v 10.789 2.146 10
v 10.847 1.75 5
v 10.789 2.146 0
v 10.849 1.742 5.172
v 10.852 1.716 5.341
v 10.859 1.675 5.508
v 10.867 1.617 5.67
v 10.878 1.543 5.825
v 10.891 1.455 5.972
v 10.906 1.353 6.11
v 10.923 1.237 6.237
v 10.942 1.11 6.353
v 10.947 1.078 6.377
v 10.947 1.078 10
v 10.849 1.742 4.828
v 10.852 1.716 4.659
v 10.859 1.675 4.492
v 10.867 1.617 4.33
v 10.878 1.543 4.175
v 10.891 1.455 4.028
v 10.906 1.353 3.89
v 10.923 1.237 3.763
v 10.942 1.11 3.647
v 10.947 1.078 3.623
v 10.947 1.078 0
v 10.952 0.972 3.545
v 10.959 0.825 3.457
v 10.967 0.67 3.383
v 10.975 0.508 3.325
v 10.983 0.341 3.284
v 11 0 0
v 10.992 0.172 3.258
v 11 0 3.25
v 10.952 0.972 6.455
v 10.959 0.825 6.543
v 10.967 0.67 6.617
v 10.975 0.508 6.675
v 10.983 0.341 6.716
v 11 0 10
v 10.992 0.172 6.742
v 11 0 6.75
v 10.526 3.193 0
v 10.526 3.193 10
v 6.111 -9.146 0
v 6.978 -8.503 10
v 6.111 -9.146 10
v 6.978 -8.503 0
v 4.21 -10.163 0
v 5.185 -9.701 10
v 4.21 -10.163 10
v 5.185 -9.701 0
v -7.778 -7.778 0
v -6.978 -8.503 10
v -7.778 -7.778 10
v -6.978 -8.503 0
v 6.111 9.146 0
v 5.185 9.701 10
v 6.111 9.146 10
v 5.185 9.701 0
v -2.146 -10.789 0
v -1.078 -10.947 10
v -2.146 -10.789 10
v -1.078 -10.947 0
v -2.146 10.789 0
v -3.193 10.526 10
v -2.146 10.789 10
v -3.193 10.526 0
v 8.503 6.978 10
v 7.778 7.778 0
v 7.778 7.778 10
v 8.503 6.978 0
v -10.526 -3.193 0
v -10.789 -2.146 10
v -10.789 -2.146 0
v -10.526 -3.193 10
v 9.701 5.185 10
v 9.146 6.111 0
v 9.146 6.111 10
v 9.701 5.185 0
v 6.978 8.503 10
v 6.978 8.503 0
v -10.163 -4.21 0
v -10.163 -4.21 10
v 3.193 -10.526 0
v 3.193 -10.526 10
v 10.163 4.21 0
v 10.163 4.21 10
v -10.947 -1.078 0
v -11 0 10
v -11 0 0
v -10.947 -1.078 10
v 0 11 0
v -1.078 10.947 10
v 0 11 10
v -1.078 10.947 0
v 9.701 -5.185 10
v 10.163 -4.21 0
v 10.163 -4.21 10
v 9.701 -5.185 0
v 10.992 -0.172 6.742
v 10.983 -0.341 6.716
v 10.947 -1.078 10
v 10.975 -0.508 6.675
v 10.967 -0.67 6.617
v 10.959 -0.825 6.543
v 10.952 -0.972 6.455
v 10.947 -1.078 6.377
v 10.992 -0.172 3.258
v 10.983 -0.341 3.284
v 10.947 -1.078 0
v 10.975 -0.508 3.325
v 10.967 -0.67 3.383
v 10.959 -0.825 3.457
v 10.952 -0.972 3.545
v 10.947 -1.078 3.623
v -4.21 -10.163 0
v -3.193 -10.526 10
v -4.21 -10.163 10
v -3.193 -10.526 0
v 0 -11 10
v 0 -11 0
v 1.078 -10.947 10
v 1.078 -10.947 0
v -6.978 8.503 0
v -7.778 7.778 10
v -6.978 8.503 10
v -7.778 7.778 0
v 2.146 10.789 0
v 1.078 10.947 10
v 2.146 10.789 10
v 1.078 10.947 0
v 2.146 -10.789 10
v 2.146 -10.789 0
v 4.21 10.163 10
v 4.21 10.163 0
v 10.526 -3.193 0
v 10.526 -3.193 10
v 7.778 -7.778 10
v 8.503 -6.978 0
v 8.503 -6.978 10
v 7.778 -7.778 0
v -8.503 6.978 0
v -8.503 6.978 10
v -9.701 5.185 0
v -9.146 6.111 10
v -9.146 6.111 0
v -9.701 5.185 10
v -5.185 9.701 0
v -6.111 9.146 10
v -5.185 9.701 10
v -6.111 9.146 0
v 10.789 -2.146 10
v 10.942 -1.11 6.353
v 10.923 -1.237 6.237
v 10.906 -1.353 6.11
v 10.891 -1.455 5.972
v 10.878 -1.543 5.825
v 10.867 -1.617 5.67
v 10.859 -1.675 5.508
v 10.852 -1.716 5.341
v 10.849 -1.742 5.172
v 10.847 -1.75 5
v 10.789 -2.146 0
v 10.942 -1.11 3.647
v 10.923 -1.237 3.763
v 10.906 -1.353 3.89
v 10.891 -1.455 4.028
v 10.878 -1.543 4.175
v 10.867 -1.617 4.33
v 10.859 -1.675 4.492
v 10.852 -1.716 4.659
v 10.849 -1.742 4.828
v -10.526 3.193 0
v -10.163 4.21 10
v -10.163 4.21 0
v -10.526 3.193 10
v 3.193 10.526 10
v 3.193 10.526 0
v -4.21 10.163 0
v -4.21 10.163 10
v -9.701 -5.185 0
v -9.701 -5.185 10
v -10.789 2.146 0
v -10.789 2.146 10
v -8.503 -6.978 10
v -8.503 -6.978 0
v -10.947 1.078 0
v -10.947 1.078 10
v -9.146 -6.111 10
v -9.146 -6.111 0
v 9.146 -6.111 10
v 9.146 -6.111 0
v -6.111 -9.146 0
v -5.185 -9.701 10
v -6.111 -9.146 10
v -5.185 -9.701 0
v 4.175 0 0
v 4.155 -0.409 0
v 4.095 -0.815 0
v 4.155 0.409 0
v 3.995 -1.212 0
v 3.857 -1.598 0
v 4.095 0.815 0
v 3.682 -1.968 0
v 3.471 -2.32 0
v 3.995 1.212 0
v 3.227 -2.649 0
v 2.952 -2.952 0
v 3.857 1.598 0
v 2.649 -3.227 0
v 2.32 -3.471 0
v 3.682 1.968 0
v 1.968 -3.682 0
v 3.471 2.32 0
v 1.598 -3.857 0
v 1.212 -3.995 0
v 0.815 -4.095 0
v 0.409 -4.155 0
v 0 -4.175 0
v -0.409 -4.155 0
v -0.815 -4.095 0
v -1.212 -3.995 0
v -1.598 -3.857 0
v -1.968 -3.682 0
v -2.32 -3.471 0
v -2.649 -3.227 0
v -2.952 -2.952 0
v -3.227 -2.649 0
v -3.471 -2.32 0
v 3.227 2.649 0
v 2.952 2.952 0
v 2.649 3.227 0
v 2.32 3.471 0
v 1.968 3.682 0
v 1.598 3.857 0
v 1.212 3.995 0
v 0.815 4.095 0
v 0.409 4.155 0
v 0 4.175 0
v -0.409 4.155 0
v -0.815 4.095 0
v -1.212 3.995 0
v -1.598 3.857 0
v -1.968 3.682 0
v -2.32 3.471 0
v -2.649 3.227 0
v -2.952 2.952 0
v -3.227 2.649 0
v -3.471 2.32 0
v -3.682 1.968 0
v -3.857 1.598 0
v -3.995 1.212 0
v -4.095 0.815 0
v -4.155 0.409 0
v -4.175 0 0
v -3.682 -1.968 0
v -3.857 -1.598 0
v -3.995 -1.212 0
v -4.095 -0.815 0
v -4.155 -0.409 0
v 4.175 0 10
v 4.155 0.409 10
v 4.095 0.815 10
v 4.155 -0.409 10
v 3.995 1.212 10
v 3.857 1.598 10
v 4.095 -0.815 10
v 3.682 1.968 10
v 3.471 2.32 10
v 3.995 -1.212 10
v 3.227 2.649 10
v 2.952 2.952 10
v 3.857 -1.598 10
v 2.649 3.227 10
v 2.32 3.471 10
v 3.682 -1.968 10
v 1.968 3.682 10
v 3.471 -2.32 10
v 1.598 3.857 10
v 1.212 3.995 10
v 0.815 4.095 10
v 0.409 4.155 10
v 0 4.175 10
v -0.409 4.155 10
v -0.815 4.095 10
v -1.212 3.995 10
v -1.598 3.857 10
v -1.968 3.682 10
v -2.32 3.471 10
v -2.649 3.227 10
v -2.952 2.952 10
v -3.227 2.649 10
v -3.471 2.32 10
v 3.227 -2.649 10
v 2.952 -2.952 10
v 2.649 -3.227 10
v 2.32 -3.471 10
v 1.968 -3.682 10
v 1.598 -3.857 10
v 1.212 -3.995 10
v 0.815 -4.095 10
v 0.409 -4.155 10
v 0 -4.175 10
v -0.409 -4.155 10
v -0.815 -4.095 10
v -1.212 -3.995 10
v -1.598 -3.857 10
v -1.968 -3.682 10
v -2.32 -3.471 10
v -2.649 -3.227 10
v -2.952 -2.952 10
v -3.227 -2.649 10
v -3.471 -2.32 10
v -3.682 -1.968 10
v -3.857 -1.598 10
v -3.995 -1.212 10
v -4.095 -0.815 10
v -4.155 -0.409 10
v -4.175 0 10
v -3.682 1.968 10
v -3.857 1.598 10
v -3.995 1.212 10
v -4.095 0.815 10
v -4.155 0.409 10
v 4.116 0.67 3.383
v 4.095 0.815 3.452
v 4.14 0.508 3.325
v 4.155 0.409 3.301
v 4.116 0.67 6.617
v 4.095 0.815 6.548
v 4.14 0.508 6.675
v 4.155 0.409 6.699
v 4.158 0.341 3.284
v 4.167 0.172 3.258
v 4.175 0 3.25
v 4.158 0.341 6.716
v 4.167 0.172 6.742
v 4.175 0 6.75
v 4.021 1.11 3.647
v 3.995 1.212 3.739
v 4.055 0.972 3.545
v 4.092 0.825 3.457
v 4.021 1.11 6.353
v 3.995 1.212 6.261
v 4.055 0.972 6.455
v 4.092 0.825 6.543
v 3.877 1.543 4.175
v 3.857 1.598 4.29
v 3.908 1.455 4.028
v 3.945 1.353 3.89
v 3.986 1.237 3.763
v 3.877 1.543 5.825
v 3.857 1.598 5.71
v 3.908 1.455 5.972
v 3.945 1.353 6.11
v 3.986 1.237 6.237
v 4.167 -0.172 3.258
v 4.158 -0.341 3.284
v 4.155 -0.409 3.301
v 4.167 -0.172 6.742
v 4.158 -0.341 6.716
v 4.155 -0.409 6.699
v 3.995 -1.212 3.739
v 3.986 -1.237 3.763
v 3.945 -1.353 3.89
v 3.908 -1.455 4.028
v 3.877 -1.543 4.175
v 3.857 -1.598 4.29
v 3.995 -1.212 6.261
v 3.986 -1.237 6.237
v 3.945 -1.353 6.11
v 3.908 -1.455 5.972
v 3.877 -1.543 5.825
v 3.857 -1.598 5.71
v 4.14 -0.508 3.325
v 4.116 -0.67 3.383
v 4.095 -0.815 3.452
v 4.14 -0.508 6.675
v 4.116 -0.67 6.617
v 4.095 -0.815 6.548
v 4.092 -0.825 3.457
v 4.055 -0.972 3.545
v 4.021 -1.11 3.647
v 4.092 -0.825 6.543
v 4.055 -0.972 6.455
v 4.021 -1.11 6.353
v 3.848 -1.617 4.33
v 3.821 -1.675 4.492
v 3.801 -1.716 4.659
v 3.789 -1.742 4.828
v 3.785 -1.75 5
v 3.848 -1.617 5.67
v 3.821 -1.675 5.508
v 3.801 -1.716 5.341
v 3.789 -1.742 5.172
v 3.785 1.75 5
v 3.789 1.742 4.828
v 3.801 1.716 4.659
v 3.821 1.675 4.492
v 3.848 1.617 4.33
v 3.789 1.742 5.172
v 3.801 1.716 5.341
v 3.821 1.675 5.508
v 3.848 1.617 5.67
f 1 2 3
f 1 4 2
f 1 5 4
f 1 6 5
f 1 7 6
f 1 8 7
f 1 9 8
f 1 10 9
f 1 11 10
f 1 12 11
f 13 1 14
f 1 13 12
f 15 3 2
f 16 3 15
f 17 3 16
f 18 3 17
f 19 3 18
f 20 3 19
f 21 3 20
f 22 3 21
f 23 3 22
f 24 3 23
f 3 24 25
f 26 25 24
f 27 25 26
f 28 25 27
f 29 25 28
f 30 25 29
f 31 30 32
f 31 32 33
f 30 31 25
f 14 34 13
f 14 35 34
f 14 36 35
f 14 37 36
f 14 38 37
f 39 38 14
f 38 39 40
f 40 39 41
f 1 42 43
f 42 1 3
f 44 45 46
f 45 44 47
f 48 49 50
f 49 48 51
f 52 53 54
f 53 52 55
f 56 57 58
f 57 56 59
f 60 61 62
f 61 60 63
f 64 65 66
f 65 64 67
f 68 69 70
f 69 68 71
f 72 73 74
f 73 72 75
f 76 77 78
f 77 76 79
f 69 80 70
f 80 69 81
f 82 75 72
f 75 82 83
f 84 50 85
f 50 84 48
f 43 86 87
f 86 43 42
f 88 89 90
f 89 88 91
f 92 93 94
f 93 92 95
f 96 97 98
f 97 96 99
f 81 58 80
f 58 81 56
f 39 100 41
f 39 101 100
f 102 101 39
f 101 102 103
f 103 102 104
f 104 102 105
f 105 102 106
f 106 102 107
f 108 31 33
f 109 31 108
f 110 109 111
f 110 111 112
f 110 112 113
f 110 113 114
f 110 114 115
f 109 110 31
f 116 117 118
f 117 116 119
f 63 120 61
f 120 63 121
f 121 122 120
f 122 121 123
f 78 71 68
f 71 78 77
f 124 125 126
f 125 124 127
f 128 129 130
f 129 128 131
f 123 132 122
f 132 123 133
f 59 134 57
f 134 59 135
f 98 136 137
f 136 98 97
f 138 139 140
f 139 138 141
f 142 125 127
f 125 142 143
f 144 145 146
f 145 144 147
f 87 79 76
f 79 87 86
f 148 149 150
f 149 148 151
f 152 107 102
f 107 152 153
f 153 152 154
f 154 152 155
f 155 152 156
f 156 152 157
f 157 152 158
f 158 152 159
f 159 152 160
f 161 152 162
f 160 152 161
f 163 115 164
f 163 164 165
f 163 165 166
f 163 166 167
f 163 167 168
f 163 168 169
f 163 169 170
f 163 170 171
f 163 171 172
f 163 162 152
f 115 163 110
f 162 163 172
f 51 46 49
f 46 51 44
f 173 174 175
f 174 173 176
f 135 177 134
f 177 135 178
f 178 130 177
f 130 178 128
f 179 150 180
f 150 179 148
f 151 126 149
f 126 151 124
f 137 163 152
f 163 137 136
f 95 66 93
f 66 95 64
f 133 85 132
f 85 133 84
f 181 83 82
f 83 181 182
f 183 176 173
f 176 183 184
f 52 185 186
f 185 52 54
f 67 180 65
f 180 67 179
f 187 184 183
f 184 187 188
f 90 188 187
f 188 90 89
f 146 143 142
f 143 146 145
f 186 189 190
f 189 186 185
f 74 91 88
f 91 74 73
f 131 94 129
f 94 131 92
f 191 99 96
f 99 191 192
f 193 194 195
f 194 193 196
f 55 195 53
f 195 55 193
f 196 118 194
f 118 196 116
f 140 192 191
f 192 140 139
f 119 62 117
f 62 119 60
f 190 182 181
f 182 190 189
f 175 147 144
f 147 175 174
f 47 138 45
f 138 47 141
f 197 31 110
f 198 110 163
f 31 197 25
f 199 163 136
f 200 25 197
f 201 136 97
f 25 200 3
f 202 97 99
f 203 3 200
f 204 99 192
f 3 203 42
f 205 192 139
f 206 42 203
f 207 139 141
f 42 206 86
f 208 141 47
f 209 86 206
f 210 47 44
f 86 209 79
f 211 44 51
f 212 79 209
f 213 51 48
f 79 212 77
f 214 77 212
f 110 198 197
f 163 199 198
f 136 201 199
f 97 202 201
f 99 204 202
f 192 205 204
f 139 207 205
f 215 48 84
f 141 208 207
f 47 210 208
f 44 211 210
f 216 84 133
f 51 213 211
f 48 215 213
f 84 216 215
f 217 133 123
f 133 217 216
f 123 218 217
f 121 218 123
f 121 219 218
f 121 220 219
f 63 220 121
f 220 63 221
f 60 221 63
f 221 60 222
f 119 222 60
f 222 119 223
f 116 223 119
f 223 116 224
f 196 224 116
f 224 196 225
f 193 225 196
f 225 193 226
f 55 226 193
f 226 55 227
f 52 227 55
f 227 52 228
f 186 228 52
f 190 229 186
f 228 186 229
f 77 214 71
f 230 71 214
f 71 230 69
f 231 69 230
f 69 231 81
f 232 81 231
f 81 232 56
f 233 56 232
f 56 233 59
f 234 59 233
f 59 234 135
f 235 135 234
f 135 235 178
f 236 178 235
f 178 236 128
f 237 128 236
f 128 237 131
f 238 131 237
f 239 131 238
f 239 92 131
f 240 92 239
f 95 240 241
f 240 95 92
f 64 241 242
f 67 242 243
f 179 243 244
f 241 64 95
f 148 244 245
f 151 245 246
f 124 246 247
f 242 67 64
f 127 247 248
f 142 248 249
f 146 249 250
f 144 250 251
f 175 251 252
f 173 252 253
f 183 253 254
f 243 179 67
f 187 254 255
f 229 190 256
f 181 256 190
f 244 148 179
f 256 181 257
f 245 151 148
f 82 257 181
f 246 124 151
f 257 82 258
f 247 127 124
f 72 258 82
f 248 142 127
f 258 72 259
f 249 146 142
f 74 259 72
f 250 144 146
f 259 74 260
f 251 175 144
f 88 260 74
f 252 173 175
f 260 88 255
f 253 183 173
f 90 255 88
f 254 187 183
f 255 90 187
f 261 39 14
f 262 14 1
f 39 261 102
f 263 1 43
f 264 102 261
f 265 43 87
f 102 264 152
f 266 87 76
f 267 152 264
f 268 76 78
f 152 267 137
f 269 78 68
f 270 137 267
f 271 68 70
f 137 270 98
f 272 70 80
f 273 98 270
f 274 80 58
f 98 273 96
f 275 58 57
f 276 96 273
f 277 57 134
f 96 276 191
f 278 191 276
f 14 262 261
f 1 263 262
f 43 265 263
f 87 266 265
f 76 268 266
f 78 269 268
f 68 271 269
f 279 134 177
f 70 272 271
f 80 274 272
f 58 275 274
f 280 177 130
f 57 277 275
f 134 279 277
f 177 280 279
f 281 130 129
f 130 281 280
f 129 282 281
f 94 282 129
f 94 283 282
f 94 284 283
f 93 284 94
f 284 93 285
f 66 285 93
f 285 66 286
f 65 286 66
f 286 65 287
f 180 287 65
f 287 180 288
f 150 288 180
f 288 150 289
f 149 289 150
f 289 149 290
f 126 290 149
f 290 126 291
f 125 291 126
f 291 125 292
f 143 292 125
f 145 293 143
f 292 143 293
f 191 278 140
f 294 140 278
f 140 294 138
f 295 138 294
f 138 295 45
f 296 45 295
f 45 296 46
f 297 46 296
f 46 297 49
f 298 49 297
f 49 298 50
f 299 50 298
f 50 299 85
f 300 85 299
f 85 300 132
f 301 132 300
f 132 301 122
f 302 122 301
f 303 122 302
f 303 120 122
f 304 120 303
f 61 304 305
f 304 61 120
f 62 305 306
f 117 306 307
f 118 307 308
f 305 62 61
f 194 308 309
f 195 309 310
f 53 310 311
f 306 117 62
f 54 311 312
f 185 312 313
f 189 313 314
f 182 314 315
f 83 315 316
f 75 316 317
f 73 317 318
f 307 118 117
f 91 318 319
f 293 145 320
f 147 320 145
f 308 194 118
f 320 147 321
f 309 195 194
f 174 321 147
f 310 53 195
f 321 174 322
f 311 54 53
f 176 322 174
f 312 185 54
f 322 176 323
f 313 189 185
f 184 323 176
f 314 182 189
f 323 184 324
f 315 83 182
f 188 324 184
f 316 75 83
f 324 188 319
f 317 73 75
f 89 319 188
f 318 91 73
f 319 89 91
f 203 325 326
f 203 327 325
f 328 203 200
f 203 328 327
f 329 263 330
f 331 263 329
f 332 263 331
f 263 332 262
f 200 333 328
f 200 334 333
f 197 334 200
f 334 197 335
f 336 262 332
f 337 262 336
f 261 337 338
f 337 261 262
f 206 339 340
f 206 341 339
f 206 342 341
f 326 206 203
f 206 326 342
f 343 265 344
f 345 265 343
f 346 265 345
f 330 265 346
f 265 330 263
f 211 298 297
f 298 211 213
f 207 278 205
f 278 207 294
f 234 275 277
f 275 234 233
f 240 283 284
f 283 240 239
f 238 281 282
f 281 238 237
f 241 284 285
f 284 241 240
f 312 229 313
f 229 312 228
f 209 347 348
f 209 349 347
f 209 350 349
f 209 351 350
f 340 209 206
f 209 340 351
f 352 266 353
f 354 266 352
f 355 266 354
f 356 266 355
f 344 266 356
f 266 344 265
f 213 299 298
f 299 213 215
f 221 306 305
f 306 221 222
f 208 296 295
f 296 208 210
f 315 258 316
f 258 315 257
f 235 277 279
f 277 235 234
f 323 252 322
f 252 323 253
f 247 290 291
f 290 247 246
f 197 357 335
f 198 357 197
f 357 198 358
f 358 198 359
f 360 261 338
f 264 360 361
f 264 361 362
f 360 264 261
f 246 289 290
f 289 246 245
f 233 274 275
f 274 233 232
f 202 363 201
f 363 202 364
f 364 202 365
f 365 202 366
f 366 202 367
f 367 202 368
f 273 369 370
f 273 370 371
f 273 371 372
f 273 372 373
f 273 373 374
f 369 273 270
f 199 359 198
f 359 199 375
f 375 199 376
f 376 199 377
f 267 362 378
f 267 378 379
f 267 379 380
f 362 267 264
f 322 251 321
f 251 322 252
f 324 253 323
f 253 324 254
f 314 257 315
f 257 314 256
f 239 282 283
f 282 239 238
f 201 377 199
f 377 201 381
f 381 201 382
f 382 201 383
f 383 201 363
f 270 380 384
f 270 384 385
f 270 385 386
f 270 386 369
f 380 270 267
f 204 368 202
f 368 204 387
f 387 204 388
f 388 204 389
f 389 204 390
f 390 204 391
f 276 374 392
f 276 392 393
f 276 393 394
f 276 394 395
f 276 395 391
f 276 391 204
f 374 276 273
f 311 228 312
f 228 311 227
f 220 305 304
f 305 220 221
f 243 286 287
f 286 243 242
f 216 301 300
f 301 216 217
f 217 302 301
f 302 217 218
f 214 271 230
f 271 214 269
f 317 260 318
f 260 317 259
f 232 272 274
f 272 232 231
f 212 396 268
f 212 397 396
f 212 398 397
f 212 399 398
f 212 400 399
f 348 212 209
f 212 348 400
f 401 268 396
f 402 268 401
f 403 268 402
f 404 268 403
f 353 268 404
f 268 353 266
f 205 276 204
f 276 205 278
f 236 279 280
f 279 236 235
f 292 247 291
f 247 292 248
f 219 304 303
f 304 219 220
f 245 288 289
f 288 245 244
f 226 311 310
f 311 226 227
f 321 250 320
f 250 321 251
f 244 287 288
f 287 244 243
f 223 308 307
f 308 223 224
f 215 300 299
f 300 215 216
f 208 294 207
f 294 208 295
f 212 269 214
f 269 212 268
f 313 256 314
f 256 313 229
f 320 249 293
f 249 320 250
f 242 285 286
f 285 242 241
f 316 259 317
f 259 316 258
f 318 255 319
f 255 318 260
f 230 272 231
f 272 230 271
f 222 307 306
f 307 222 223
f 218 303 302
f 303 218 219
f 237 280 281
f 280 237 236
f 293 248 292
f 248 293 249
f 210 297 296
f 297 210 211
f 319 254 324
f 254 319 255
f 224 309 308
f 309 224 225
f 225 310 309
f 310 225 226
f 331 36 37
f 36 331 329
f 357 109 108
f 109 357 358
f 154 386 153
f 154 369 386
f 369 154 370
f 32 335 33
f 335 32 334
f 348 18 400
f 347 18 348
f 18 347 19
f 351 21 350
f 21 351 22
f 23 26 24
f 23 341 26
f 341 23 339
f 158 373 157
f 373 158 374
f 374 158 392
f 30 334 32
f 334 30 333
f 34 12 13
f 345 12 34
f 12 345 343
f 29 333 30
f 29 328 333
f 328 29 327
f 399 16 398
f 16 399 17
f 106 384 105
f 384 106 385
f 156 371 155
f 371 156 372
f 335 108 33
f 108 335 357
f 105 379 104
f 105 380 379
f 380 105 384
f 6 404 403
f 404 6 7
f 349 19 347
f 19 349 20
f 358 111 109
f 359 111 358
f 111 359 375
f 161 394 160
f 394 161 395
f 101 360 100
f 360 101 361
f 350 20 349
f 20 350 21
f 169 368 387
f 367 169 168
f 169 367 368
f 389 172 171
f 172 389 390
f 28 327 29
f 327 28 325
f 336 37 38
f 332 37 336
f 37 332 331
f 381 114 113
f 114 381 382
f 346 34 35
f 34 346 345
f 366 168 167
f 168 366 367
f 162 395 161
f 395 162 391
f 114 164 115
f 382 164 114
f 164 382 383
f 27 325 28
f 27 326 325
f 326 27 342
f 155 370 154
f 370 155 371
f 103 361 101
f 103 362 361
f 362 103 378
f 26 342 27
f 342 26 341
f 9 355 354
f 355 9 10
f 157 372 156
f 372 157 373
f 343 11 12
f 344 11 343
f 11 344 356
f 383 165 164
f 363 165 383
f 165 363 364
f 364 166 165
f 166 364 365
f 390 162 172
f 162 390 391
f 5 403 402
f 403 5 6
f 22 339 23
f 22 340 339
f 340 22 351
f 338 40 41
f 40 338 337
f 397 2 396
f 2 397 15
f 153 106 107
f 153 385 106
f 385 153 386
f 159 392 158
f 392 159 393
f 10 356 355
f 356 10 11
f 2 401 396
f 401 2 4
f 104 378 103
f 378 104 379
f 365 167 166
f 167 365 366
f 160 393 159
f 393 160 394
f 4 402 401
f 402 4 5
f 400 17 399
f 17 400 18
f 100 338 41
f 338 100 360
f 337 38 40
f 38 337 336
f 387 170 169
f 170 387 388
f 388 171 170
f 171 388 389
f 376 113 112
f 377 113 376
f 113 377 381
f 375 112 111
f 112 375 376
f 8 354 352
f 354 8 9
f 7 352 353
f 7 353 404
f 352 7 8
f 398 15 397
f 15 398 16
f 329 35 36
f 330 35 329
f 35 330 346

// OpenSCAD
// file: parameters.scad
// =============================================================================
// Gen-AI Stacked dual-stator mid-rotor copper-max — WOUND-AWARE (HARD GATE)
// ONE mid dual-face Halbach rotor | TWO wound pancake stators | 18 coils ×145 t
// =============================================================================

wire_awg            = 26;
wire_od             = 0.45;
turns               = 145;      // 9 coils/stator ×2 = 18 ×145 ×~0.122 ≈ 318 m
fill                = 0.70;
layers_per_face     = 2;
wind_build_axial    = layers_per_face * wire_od * fill;   // 0.63
wind_build_radial   = 3 * wire_od * fill;                 // 0.945

coil_id_r           = 19.0;
coil_od_r           = 64.0;
span_deg            = 34.0;     // 9 stations × 40°
former_web          = 1.50;
flange_t            = 0.60;
wall                = 1.2;
slot_w              = 2.4;
mount_hole          = 3.5;
tab_len             = 7.0;

former_bare_h       = former_web + 2 * flange_t;            // 2.70
coil_envelope_h     = former_bare_h + 2 * wind_build_axial; // 3.96

run_clear           = 0.52;
gap_spacer_h        = run_clear + wind_build_axial;         // 1.15
m2m                 = coil_envelope_h + 2 * run_clear;      // 5.00 per gap

coil_stations       = 9;        // per stator; ×2 = 18 total
bay_r_in            = coil_id_r - 2.0 - wind_build_radial;
bay_r_out           = coil_od_r + 2.0 + wind_build_radial;
bay_span            = span_deg + 4.0;
bay_offset          = 2.0;
bay_depth           = former_bare_h + wind_build_axial;     // wound sits in bay
stator_back_web     = 2.0;
stator_thick        = bay_depth + stator_back_web;
stator_od           = 156.0;
shaft_clear_stator  = 38.0;
coil_mount_r        = 28.0;

large_pocket_d      = 20.3;
small_pocket_d      = 5.3;
pocket_h            = 5.2;
large_n             = 8;
R_large             = 42.0;
R_small_inner       = 28.0;
R_small_mid         = 42.0;
R_small_outer       = 58.0;
carrier_od          = 154.0;
mid_carrier_thick   = 12.0;
hub_h               = 10.0;
hub_od              = 30.0;
rotor_b_offset_deg  = 22.5;

shaft_bore          = 8.35;
bearing_d           = 21.85;
bearing_h           = 7.2;
m3_clear            = 3.5;
bolt_r_inner        = 36.0;
bolt_n_inner        = 6;
flange_bolt_r       = 72.0;
flange_bolt_n       = 6;
brace_r             = 68.0;
brace_d             = 4.3;
brace_n             = 4;

spacer_pad_od       = 14.0;
spacer_pad_id       = m3_clear;
endbell_od          = 156.0;
endbell_thick       = 8.0;
endbell_shaft_clear = 10.0;

$fn = 64;
// main file
// Gen-AI shaft collar — print ×2–4
include <parameters.scad>;
$fn = 64;
od = 22; id = shaft_bore; h = 10; set_d = 3.5;
difference() {
    cylinder(d=od, h=h);
    translate([0, 0, -0.1]) cylinder(d=id, h=h + 0.2);
    translate([0, 0, h/2]) rotate([0, 90, 0]) cylinder(d=set_d, h=od);
}
